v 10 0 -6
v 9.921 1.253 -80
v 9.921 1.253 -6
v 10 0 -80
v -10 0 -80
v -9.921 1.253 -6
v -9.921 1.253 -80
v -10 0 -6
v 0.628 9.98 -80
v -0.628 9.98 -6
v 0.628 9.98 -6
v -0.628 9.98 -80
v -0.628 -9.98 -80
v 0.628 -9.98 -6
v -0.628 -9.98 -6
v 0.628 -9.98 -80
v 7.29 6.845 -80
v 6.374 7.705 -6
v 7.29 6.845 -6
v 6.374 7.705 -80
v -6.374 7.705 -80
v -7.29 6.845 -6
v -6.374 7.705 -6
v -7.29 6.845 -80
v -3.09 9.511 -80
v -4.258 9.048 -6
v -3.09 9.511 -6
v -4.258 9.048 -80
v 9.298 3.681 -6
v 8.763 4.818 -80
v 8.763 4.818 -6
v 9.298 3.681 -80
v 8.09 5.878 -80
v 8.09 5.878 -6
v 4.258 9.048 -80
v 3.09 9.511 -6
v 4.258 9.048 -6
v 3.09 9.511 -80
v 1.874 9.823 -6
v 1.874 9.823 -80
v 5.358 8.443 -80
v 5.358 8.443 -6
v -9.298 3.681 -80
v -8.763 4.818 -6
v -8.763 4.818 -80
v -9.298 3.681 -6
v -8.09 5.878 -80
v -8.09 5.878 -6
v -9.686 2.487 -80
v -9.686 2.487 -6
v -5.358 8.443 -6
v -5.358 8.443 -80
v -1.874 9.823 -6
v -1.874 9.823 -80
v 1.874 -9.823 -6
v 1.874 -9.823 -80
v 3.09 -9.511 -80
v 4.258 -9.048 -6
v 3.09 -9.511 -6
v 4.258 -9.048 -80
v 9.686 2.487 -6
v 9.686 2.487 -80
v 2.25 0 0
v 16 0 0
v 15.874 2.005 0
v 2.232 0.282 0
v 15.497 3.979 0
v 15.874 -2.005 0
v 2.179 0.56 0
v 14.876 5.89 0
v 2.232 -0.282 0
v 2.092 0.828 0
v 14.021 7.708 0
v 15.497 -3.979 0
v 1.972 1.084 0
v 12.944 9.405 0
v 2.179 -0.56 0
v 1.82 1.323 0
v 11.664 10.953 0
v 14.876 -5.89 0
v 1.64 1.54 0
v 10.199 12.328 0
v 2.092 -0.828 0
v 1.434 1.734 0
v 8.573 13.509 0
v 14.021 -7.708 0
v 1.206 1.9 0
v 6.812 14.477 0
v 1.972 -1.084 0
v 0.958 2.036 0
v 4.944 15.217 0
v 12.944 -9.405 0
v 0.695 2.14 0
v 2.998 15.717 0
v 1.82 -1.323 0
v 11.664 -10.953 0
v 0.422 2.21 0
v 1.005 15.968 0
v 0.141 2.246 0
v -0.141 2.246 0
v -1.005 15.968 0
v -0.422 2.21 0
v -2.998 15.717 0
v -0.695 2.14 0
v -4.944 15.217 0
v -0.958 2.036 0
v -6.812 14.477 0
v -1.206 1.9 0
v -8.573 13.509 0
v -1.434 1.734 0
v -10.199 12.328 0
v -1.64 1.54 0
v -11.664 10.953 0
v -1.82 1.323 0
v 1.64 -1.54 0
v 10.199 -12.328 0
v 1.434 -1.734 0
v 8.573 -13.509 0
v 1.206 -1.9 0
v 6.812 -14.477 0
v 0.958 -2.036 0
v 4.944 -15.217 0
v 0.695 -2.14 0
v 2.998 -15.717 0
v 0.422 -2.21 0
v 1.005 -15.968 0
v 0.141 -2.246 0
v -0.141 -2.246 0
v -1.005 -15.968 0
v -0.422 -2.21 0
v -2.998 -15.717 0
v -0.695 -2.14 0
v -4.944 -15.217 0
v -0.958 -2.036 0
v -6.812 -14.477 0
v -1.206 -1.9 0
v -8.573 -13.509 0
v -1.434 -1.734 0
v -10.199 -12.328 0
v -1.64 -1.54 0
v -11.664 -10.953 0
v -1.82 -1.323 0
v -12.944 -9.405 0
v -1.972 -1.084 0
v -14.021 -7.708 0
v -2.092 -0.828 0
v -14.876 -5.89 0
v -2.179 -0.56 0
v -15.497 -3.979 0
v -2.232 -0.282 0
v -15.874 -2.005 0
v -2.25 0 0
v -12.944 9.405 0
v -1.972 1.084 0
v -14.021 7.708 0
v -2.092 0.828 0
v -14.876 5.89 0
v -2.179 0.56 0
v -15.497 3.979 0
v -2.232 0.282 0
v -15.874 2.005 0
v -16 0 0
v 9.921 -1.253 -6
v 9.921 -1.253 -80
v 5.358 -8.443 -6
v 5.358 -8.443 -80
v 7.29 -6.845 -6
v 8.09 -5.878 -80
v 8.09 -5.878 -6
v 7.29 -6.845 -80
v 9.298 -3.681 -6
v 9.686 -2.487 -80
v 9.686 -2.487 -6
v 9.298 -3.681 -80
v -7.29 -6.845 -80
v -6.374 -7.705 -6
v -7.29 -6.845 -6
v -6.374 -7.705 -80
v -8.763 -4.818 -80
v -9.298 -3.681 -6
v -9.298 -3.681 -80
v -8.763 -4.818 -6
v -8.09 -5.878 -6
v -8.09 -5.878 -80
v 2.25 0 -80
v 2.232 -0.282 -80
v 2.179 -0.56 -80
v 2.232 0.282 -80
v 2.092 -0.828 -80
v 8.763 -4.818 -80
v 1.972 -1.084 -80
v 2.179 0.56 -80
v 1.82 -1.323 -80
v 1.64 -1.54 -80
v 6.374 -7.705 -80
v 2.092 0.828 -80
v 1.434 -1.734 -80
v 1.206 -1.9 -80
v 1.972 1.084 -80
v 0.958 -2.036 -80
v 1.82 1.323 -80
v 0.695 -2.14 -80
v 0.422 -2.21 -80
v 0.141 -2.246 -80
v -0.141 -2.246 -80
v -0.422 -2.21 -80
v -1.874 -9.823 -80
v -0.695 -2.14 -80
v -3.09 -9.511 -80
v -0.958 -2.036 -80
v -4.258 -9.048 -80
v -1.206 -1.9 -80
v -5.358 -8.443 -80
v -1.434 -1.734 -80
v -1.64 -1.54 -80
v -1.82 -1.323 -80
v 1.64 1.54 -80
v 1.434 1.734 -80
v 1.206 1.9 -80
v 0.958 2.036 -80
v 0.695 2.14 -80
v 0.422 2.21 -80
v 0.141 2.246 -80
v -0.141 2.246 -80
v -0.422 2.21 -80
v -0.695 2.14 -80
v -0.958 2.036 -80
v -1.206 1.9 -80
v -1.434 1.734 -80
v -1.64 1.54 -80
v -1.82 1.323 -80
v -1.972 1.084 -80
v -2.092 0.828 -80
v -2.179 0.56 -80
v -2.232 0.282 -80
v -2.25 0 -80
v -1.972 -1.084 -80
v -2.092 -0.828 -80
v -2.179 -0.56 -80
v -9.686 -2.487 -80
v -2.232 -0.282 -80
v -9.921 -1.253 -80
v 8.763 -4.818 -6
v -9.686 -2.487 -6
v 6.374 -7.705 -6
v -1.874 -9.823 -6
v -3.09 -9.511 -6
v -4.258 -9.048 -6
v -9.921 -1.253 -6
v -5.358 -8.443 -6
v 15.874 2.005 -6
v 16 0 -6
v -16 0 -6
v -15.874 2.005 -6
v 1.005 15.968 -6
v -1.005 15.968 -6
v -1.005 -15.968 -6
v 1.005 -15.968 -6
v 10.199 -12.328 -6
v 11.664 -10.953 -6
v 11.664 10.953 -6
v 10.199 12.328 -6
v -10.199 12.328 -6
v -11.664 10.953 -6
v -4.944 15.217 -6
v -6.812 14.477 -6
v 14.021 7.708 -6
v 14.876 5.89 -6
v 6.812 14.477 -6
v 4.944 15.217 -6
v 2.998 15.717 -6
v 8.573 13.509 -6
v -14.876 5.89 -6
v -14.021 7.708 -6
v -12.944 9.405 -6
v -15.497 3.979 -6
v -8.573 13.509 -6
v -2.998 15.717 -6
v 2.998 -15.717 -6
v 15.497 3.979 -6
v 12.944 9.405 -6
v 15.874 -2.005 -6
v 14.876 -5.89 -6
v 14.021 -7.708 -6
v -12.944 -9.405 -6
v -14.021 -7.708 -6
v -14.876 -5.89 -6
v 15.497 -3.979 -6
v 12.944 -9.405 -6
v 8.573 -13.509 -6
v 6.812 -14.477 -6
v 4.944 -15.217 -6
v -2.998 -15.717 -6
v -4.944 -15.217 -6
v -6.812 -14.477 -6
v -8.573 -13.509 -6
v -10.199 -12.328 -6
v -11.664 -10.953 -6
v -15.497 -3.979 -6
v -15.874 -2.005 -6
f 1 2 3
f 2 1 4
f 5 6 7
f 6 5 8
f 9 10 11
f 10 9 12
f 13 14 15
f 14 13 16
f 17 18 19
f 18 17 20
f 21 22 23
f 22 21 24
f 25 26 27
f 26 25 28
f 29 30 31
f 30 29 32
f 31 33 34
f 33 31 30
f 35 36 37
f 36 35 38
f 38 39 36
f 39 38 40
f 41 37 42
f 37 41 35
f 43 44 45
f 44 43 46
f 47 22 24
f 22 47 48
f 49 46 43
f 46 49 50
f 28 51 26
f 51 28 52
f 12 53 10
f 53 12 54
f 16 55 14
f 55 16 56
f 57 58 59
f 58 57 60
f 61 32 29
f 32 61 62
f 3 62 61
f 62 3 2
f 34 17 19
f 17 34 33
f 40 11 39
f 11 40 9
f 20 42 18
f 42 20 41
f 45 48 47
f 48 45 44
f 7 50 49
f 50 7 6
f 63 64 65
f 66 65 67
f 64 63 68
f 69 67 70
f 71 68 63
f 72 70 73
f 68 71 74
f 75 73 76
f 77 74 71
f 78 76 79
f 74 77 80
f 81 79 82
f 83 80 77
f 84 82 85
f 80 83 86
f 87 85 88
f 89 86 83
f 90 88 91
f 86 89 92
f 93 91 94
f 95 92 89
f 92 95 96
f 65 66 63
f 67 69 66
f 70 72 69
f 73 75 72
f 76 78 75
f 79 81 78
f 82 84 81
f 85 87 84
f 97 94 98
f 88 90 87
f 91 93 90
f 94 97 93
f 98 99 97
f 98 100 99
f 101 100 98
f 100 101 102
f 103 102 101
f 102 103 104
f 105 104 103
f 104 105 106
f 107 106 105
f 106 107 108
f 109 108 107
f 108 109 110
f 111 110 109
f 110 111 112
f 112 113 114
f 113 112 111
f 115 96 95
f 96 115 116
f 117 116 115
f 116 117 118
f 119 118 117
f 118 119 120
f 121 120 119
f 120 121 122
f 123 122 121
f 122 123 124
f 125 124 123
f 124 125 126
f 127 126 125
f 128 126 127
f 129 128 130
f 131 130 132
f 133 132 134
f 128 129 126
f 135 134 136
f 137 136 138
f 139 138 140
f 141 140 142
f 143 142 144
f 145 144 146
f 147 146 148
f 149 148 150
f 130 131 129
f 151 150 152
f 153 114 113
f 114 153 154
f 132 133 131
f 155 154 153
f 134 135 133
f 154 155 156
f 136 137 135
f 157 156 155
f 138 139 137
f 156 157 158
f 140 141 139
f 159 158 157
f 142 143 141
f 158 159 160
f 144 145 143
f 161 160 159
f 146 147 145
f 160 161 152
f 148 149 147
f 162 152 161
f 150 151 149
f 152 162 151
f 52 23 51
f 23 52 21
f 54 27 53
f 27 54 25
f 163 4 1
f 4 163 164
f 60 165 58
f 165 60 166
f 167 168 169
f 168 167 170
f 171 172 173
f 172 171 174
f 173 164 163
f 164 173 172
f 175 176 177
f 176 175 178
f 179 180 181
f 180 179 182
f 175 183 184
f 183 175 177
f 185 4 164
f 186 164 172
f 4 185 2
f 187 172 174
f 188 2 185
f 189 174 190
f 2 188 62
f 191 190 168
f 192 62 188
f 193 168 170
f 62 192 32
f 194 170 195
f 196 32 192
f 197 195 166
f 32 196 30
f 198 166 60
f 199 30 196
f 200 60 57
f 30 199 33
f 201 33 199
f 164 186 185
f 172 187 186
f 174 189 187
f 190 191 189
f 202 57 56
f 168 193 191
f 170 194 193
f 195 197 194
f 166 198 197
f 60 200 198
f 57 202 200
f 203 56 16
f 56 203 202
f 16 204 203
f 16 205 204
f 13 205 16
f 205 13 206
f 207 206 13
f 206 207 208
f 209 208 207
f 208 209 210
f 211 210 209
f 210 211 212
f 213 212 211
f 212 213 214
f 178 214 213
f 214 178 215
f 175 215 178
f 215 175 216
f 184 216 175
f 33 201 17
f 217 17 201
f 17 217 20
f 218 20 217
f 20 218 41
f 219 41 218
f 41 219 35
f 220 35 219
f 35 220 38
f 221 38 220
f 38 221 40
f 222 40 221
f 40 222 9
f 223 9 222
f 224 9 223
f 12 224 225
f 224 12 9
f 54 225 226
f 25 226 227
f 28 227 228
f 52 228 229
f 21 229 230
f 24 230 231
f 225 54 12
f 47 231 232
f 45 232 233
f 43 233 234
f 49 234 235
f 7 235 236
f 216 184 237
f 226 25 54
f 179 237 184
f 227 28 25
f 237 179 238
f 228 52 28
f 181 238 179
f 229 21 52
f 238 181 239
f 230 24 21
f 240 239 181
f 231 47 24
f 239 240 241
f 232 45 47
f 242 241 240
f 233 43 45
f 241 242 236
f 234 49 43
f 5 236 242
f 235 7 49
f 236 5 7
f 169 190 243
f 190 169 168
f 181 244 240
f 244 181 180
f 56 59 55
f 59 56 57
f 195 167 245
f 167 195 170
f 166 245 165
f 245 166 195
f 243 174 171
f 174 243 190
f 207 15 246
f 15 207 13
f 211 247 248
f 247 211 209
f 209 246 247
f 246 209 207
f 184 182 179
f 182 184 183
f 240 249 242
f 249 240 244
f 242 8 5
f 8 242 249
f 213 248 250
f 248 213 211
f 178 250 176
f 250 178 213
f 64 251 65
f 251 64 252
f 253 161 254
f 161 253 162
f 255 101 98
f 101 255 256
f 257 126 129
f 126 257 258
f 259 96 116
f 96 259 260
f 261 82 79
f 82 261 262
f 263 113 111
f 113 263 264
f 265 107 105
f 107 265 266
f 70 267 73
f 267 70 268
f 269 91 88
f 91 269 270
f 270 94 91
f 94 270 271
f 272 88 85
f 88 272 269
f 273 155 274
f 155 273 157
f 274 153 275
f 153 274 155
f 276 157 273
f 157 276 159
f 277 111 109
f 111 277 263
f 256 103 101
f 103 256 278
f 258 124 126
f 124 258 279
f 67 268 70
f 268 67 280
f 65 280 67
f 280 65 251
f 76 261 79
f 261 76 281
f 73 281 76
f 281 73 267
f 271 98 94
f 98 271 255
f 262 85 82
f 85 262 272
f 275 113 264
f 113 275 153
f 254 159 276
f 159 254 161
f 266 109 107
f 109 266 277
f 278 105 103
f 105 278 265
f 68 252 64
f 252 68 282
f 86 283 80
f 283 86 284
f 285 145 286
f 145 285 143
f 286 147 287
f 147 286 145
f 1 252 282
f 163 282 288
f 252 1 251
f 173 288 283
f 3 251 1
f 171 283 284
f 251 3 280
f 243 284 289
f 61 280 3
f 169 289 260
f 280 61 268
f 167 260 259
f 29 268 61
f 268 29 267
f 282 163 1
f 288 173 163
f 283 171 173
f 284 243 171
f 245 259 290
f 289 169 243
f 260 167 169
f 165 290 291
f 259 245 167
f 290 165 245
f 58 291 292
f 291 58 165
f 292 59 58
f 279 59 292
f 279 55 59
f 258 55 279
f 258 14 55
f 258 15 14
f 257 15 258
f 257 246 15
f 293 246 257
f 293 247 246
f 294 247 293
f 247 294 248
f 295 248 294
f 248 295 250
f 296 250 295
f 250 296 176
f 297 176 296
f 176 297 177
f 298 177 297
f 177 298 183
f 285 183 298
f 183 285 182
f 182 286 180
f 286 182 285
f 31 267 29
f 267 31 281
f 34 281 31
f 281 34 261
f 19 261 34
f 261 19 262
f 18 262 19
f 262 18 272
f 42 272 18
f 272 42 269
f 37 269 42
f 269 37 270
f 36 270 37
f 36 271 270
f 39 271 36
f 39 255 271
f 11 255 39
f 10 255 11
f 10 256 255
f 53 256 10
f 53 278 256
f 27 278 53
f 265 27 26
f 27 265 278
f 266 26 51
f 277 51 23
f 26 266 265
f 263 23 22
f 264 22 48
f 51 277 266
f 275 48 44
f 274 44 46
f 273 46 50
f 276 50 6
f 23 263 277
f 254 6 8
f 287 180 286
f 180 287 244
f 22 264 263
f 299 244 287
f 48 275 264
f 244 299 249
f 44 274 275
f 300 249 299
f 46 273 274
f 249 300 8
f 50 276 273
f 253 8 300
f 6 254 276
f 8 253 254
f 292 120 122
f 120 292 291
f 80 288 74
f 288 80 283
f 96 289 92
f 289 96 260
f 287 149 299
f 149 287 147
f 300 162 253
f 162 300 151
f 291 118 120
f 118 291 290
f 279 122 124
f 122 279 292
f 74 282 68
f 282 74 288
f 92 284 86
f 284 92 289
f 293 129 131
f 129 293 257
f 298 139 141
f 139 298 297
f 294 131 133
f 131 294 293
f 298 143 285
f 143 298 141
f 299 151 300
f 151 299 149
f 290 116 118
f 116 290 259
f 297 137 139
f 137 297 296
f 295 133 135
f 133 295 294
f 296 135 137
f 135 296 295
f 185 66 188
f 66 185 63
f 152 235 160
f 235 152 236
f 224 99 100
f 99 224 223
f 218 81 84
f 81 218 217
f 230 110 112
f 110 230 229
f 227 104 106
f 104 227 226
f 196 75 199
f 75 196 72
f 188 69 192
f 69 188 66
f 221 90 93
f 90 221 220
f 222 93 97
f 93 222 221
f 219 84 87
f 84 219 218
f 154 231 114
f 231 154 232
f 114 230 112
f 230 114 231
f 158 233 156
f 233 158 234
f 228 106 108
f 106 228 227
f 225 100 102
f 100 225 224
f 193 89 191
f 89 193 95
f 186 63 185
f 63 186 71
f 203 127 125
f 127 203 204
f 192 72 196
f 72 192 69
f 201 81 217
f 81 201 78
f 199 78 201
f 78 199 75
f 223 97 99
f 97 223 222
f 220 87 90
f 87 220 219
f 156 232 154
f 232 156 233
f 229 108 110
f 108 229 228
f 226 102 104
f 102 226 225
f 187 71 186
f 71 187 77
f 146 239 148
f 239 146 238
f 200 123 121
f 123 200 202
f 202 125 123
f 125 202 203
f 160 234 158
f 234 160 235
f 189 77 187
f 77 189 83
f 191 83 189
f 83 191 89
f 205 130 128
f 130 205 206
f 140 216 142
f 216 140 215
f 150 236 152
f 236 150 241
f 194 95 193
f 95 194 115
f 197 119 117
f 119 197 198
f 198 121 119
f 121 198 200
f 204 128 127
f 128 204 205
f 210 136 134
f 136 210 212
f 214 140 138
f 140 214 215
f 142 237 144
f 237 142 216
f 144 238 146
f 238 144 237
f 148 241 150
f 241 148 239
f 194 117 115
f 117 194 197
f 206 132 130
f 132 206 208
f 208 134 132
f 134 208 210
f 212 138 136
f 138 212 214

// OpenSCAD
$fn = 50;


difference() {
	union() {
		translate(v = [0, 0, -80.0000000000]) {
			cylinder(h = 80, r = 10.0000000000);
		}
		translate(v = [0, 0, -6.0000000000]) {
			cylinder(h = 6, r = 16.0000000000);
		}
	}
	union() {
		#translate(v = [0, 0, -80]) {
			cylinder(h = 80, r = 2.2500000000);
		}
	}
}
